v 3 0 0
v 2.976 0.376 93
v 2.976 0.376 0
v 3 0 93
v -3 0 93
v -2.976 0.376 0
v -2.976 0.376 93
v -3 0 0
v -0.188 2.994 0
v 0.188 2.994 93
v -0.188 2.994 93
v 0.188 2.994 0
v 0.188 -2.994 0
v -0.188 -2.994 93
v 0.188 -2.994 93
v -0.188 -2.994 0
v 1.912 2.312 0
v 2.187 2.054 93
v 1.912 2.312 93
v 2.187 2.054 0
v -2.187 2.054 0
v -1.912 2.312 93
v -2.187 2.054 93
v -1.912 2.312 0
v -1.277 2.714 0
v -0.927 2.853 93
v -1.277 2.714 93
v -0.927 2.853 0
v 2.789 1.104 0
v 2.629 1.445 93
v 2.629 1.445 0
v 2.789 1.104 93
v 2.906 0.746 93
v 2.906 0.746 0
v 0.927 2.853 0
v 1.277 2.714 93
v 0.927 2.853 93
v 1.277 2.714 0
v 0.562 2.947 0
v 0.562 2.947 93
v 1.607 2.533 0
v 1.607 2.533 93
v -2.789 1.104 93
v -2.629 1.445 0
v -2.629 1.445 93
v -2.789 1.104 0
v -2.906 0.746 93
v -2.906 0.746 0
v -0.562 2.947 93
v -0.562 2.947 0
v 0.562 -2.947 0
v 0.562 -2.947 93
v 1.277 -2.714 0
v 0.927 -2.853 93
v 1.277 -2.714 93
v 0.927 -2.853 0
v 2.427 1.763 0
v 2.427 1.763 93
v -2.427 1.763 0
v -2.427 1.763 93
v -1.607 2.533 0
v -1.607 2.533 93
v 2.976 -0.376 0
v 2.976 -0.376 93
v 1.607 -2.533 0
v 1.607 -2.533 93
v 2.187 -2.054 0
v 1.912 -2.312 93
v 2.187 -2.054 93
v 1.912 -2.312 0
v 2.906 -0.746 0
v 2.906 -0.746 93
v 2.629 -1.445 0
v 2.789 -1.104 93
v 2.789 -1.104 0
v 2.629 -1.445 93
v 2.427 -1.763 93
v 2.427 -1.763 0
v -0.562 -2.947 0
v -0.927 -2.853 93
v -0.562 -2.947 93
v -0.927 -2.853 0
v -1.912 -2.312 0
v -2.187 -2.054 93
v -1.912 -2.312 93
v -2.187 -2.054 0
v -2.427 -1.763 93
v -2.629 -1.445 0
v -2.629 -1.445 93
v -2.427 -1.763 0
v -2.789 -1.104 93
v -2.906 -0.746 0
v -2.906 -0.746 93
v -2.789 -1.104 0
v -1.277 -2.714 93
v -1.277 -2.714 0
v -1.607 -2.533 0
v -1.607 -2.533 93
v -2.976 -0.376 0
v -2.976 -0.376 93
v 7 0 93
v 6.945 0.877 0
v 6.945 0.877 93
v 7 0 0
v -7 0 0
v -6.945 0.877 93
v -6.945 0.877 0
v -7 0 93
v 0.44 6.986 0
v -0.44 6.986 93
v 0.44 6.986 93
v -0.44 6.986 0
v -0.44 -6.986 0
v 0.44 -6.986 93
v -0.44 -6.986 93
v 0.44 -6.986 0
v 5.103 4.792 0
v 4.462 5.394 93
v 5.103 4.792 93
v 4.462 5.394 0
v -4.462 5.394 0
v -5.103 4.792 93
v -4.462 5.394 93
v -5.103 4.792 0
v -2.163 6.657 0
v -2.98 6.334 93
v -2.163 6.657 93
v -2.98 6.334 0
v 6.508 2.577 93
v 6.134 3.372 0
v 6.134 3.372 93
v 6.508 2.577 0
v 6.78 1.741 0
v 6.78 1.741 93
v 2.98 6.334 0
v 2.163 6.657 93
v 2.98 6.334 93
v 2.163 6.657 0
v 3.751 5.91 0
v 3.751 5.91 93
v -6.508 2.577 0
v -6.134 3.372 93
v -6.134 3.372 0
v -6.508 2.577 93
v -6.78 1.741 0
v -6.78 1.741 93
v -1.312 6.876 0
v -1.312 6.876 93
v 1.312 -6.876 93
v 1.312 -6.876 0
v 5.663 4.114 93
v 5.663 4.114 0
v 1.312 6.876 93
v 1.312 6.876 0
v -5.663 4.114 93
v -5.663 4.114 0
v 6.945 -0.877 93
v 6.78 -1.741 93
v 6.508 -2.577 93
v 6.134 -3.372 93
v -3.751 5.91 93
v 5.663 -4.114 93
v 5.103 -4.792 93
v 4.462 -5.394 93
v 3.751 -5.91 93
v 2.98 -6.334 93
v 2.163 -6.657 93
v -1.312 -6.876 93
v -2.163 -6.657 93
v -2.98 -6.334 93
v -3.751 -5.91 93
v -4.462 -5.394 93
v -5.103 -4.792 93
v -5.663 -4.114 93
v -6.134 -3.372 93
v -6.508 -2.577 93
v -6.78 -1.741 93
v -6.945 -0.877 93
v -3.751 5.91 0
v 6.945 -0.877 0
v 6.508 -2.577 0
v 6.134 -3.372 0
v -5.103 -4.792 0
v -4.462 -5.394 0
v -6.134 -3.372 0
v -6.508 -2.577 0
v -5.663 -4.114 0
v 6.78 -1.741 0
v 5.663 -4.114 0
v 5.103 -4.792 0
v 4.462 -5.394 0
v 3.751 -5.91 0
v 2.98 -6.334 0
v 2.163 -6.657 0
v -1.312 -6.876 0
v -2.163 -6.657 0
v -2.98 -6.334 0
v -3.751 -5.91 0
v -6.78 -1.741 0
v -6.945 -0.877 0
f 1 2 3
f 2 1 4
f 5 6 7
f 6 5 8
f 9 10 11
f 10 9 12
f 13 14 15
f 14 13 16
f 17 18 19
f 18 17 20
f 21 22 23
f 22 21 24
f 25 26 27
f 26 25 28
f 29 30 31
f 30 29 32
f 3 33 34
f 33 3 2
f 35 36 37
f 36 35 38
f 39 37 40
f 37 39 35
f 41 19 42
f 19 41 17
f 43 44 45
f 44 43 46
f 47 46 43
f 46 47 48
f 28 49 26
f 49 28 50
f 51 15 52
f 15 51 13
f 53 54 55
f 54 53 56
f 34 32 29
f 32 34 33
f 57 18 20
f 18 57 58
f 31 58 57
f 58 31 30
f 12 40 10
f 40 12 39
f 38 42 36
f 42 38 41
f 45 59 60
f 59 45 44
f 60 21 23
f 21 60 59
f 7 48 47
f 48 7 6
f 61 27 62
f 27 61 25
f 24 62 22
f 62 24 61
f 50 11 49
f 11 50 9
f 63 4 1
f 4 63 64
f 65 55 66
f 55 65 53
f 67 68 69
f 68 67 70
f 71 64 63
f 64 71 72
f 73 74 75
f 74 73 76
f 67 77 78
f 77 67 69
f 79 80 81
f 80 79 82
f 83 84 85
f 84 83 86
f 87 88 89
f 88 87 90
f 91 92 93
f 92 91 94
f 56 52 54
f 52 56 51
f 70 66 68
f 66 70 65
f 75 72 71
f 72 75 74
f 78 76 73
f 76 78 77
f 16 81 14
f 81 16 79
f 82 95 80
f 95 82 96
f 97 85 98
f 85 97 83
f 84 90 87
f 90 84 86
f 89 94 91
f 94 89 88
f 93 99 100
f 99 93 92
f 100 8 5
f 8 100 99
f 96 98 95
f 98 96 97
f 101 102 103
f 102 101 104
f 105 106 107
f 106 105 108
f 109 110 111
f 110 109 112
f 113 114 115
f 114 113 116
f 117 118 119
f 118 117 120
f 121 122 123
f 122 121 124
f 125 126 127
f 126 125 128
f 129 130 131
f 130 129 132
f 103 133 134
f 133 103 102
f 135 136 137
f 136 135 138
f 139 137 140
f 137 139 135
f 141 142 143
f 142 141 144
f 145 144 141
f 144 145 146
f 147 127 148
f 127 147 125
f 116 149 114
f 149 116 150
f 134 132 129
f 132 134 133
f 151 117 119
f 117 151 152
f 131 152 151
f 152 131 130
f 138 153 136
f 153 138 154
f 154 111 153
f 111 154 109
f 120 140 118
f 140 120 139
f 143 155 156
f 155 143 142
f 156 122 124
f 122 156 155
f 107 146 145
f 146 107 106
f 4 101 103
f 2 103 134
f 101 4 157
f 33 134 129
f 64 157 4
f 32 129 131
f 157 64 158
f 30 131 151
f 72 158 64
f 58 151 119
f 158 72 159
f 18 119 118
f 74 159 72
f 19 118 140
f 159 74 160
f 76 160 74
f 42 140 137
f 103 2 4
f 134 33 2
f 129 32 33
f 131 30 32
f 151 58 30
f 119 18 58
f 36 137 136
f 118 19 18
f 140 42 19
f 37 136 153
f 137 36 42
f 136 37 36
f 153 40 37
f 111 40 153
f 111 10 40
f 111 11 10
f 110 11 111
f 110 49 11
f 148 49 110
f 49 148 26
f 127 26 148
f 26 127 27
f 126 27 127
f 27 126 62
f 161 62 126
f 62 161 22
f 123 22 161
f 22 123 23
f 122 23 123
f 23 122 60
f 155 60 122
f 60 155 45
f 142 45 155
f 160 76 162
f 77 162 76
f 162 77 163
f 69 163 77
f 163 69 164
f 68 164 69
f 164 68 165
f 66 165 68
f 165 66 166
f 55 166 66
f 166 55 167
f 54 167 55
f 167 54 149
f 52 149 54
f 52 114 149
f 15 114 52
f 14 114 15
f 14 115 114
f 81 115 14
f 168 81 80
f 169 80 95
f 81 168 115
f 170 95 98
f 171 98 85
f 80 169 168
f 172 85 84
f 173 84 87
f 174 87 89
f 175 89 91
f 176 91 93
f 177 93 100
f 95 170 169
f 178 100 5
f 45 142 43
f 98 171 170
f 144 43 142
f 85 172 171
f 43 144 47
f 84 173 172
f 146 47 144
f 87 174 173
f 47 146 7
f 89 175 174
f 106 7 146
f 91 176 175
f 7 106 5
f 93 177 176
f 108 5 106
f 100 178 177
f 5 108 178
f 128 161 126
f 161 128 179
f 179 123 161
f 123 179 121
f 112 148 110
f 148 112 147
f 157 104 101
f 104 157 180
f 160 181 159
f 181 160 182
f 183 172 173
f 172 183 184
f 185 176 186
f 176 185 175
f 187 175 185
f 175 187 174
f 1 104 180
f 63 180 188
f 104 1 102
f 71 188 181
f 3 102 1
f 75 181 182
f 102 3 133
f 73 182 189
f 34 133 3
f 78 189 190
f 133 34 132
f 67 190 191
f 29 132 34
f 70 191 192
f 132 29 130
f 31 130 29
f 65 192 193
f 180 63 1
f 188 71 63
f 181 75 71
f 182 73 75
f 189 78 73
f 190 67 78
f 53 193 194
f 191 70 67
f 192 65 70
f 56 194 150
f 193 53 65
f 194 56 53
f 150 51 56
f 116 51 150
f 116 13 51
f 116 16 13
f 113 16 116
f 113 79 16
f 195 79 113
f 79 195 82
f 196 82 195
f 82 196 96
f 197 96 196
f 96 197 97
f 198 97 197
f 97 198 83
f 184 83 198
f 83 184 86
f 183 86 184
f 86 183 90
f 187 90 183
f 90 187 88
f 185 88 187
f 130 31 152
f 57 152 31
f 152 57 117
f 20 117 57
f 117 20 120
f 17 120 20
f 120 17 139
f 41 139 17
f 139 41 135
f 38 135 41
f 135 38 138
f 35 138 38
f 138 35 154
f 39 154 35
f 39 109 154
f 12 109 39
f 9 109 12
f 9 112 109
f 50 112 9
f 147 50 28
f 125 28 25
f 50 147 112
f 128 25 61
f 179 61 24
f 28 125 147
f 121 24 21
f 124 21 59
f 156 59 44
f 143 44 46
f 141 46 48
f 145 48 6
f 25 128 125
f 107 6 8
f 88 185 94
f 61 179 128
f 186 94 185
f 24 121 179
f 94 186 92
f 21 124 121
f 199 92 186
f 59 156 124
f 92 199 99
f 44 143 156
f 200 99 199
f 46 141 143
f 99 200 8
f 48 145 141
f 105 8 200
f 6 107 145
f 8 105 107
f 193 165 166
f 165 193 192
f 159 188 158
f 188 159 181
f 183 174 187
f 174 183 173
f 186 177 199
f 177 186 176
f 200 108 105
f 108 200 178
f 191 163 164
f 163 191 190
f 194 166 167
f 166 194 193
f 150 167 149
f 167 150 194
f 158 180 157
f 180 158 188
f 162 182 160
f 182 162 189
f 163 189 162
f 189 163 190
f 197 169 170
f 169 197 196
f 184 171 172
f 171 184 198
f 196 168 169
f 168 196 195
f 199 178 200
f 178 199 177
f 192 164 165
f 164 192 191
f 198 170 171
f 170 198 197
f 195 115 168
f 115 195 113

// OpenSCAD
$fn = 50;


difference() {
	union() {
		cylinder(h = 93, r = 7.0000000000);
	}
	union() {
		translate(v = [0.0000000000, 0.0000000000, -100.0000000000]) {
			cylinder(h = 200, r = 3.0000000000);
		}
		translate(v = [0.0000000000, 0.0000000000, -100.0000000000]) {
			cylinder(h = 200, r = 3.0000000000);
		}
		translate(v = [0.0000000000, 0.0000000000, -100.0000000000]) {
			cylinder(h = 200, r = 3.0000000000);
		}
		translate(v = [0.0000000000, 0.0000000000, -100.0000000000]) {
			cylinder(h = 200, r = 3.0000000000);
		}
	}
}
